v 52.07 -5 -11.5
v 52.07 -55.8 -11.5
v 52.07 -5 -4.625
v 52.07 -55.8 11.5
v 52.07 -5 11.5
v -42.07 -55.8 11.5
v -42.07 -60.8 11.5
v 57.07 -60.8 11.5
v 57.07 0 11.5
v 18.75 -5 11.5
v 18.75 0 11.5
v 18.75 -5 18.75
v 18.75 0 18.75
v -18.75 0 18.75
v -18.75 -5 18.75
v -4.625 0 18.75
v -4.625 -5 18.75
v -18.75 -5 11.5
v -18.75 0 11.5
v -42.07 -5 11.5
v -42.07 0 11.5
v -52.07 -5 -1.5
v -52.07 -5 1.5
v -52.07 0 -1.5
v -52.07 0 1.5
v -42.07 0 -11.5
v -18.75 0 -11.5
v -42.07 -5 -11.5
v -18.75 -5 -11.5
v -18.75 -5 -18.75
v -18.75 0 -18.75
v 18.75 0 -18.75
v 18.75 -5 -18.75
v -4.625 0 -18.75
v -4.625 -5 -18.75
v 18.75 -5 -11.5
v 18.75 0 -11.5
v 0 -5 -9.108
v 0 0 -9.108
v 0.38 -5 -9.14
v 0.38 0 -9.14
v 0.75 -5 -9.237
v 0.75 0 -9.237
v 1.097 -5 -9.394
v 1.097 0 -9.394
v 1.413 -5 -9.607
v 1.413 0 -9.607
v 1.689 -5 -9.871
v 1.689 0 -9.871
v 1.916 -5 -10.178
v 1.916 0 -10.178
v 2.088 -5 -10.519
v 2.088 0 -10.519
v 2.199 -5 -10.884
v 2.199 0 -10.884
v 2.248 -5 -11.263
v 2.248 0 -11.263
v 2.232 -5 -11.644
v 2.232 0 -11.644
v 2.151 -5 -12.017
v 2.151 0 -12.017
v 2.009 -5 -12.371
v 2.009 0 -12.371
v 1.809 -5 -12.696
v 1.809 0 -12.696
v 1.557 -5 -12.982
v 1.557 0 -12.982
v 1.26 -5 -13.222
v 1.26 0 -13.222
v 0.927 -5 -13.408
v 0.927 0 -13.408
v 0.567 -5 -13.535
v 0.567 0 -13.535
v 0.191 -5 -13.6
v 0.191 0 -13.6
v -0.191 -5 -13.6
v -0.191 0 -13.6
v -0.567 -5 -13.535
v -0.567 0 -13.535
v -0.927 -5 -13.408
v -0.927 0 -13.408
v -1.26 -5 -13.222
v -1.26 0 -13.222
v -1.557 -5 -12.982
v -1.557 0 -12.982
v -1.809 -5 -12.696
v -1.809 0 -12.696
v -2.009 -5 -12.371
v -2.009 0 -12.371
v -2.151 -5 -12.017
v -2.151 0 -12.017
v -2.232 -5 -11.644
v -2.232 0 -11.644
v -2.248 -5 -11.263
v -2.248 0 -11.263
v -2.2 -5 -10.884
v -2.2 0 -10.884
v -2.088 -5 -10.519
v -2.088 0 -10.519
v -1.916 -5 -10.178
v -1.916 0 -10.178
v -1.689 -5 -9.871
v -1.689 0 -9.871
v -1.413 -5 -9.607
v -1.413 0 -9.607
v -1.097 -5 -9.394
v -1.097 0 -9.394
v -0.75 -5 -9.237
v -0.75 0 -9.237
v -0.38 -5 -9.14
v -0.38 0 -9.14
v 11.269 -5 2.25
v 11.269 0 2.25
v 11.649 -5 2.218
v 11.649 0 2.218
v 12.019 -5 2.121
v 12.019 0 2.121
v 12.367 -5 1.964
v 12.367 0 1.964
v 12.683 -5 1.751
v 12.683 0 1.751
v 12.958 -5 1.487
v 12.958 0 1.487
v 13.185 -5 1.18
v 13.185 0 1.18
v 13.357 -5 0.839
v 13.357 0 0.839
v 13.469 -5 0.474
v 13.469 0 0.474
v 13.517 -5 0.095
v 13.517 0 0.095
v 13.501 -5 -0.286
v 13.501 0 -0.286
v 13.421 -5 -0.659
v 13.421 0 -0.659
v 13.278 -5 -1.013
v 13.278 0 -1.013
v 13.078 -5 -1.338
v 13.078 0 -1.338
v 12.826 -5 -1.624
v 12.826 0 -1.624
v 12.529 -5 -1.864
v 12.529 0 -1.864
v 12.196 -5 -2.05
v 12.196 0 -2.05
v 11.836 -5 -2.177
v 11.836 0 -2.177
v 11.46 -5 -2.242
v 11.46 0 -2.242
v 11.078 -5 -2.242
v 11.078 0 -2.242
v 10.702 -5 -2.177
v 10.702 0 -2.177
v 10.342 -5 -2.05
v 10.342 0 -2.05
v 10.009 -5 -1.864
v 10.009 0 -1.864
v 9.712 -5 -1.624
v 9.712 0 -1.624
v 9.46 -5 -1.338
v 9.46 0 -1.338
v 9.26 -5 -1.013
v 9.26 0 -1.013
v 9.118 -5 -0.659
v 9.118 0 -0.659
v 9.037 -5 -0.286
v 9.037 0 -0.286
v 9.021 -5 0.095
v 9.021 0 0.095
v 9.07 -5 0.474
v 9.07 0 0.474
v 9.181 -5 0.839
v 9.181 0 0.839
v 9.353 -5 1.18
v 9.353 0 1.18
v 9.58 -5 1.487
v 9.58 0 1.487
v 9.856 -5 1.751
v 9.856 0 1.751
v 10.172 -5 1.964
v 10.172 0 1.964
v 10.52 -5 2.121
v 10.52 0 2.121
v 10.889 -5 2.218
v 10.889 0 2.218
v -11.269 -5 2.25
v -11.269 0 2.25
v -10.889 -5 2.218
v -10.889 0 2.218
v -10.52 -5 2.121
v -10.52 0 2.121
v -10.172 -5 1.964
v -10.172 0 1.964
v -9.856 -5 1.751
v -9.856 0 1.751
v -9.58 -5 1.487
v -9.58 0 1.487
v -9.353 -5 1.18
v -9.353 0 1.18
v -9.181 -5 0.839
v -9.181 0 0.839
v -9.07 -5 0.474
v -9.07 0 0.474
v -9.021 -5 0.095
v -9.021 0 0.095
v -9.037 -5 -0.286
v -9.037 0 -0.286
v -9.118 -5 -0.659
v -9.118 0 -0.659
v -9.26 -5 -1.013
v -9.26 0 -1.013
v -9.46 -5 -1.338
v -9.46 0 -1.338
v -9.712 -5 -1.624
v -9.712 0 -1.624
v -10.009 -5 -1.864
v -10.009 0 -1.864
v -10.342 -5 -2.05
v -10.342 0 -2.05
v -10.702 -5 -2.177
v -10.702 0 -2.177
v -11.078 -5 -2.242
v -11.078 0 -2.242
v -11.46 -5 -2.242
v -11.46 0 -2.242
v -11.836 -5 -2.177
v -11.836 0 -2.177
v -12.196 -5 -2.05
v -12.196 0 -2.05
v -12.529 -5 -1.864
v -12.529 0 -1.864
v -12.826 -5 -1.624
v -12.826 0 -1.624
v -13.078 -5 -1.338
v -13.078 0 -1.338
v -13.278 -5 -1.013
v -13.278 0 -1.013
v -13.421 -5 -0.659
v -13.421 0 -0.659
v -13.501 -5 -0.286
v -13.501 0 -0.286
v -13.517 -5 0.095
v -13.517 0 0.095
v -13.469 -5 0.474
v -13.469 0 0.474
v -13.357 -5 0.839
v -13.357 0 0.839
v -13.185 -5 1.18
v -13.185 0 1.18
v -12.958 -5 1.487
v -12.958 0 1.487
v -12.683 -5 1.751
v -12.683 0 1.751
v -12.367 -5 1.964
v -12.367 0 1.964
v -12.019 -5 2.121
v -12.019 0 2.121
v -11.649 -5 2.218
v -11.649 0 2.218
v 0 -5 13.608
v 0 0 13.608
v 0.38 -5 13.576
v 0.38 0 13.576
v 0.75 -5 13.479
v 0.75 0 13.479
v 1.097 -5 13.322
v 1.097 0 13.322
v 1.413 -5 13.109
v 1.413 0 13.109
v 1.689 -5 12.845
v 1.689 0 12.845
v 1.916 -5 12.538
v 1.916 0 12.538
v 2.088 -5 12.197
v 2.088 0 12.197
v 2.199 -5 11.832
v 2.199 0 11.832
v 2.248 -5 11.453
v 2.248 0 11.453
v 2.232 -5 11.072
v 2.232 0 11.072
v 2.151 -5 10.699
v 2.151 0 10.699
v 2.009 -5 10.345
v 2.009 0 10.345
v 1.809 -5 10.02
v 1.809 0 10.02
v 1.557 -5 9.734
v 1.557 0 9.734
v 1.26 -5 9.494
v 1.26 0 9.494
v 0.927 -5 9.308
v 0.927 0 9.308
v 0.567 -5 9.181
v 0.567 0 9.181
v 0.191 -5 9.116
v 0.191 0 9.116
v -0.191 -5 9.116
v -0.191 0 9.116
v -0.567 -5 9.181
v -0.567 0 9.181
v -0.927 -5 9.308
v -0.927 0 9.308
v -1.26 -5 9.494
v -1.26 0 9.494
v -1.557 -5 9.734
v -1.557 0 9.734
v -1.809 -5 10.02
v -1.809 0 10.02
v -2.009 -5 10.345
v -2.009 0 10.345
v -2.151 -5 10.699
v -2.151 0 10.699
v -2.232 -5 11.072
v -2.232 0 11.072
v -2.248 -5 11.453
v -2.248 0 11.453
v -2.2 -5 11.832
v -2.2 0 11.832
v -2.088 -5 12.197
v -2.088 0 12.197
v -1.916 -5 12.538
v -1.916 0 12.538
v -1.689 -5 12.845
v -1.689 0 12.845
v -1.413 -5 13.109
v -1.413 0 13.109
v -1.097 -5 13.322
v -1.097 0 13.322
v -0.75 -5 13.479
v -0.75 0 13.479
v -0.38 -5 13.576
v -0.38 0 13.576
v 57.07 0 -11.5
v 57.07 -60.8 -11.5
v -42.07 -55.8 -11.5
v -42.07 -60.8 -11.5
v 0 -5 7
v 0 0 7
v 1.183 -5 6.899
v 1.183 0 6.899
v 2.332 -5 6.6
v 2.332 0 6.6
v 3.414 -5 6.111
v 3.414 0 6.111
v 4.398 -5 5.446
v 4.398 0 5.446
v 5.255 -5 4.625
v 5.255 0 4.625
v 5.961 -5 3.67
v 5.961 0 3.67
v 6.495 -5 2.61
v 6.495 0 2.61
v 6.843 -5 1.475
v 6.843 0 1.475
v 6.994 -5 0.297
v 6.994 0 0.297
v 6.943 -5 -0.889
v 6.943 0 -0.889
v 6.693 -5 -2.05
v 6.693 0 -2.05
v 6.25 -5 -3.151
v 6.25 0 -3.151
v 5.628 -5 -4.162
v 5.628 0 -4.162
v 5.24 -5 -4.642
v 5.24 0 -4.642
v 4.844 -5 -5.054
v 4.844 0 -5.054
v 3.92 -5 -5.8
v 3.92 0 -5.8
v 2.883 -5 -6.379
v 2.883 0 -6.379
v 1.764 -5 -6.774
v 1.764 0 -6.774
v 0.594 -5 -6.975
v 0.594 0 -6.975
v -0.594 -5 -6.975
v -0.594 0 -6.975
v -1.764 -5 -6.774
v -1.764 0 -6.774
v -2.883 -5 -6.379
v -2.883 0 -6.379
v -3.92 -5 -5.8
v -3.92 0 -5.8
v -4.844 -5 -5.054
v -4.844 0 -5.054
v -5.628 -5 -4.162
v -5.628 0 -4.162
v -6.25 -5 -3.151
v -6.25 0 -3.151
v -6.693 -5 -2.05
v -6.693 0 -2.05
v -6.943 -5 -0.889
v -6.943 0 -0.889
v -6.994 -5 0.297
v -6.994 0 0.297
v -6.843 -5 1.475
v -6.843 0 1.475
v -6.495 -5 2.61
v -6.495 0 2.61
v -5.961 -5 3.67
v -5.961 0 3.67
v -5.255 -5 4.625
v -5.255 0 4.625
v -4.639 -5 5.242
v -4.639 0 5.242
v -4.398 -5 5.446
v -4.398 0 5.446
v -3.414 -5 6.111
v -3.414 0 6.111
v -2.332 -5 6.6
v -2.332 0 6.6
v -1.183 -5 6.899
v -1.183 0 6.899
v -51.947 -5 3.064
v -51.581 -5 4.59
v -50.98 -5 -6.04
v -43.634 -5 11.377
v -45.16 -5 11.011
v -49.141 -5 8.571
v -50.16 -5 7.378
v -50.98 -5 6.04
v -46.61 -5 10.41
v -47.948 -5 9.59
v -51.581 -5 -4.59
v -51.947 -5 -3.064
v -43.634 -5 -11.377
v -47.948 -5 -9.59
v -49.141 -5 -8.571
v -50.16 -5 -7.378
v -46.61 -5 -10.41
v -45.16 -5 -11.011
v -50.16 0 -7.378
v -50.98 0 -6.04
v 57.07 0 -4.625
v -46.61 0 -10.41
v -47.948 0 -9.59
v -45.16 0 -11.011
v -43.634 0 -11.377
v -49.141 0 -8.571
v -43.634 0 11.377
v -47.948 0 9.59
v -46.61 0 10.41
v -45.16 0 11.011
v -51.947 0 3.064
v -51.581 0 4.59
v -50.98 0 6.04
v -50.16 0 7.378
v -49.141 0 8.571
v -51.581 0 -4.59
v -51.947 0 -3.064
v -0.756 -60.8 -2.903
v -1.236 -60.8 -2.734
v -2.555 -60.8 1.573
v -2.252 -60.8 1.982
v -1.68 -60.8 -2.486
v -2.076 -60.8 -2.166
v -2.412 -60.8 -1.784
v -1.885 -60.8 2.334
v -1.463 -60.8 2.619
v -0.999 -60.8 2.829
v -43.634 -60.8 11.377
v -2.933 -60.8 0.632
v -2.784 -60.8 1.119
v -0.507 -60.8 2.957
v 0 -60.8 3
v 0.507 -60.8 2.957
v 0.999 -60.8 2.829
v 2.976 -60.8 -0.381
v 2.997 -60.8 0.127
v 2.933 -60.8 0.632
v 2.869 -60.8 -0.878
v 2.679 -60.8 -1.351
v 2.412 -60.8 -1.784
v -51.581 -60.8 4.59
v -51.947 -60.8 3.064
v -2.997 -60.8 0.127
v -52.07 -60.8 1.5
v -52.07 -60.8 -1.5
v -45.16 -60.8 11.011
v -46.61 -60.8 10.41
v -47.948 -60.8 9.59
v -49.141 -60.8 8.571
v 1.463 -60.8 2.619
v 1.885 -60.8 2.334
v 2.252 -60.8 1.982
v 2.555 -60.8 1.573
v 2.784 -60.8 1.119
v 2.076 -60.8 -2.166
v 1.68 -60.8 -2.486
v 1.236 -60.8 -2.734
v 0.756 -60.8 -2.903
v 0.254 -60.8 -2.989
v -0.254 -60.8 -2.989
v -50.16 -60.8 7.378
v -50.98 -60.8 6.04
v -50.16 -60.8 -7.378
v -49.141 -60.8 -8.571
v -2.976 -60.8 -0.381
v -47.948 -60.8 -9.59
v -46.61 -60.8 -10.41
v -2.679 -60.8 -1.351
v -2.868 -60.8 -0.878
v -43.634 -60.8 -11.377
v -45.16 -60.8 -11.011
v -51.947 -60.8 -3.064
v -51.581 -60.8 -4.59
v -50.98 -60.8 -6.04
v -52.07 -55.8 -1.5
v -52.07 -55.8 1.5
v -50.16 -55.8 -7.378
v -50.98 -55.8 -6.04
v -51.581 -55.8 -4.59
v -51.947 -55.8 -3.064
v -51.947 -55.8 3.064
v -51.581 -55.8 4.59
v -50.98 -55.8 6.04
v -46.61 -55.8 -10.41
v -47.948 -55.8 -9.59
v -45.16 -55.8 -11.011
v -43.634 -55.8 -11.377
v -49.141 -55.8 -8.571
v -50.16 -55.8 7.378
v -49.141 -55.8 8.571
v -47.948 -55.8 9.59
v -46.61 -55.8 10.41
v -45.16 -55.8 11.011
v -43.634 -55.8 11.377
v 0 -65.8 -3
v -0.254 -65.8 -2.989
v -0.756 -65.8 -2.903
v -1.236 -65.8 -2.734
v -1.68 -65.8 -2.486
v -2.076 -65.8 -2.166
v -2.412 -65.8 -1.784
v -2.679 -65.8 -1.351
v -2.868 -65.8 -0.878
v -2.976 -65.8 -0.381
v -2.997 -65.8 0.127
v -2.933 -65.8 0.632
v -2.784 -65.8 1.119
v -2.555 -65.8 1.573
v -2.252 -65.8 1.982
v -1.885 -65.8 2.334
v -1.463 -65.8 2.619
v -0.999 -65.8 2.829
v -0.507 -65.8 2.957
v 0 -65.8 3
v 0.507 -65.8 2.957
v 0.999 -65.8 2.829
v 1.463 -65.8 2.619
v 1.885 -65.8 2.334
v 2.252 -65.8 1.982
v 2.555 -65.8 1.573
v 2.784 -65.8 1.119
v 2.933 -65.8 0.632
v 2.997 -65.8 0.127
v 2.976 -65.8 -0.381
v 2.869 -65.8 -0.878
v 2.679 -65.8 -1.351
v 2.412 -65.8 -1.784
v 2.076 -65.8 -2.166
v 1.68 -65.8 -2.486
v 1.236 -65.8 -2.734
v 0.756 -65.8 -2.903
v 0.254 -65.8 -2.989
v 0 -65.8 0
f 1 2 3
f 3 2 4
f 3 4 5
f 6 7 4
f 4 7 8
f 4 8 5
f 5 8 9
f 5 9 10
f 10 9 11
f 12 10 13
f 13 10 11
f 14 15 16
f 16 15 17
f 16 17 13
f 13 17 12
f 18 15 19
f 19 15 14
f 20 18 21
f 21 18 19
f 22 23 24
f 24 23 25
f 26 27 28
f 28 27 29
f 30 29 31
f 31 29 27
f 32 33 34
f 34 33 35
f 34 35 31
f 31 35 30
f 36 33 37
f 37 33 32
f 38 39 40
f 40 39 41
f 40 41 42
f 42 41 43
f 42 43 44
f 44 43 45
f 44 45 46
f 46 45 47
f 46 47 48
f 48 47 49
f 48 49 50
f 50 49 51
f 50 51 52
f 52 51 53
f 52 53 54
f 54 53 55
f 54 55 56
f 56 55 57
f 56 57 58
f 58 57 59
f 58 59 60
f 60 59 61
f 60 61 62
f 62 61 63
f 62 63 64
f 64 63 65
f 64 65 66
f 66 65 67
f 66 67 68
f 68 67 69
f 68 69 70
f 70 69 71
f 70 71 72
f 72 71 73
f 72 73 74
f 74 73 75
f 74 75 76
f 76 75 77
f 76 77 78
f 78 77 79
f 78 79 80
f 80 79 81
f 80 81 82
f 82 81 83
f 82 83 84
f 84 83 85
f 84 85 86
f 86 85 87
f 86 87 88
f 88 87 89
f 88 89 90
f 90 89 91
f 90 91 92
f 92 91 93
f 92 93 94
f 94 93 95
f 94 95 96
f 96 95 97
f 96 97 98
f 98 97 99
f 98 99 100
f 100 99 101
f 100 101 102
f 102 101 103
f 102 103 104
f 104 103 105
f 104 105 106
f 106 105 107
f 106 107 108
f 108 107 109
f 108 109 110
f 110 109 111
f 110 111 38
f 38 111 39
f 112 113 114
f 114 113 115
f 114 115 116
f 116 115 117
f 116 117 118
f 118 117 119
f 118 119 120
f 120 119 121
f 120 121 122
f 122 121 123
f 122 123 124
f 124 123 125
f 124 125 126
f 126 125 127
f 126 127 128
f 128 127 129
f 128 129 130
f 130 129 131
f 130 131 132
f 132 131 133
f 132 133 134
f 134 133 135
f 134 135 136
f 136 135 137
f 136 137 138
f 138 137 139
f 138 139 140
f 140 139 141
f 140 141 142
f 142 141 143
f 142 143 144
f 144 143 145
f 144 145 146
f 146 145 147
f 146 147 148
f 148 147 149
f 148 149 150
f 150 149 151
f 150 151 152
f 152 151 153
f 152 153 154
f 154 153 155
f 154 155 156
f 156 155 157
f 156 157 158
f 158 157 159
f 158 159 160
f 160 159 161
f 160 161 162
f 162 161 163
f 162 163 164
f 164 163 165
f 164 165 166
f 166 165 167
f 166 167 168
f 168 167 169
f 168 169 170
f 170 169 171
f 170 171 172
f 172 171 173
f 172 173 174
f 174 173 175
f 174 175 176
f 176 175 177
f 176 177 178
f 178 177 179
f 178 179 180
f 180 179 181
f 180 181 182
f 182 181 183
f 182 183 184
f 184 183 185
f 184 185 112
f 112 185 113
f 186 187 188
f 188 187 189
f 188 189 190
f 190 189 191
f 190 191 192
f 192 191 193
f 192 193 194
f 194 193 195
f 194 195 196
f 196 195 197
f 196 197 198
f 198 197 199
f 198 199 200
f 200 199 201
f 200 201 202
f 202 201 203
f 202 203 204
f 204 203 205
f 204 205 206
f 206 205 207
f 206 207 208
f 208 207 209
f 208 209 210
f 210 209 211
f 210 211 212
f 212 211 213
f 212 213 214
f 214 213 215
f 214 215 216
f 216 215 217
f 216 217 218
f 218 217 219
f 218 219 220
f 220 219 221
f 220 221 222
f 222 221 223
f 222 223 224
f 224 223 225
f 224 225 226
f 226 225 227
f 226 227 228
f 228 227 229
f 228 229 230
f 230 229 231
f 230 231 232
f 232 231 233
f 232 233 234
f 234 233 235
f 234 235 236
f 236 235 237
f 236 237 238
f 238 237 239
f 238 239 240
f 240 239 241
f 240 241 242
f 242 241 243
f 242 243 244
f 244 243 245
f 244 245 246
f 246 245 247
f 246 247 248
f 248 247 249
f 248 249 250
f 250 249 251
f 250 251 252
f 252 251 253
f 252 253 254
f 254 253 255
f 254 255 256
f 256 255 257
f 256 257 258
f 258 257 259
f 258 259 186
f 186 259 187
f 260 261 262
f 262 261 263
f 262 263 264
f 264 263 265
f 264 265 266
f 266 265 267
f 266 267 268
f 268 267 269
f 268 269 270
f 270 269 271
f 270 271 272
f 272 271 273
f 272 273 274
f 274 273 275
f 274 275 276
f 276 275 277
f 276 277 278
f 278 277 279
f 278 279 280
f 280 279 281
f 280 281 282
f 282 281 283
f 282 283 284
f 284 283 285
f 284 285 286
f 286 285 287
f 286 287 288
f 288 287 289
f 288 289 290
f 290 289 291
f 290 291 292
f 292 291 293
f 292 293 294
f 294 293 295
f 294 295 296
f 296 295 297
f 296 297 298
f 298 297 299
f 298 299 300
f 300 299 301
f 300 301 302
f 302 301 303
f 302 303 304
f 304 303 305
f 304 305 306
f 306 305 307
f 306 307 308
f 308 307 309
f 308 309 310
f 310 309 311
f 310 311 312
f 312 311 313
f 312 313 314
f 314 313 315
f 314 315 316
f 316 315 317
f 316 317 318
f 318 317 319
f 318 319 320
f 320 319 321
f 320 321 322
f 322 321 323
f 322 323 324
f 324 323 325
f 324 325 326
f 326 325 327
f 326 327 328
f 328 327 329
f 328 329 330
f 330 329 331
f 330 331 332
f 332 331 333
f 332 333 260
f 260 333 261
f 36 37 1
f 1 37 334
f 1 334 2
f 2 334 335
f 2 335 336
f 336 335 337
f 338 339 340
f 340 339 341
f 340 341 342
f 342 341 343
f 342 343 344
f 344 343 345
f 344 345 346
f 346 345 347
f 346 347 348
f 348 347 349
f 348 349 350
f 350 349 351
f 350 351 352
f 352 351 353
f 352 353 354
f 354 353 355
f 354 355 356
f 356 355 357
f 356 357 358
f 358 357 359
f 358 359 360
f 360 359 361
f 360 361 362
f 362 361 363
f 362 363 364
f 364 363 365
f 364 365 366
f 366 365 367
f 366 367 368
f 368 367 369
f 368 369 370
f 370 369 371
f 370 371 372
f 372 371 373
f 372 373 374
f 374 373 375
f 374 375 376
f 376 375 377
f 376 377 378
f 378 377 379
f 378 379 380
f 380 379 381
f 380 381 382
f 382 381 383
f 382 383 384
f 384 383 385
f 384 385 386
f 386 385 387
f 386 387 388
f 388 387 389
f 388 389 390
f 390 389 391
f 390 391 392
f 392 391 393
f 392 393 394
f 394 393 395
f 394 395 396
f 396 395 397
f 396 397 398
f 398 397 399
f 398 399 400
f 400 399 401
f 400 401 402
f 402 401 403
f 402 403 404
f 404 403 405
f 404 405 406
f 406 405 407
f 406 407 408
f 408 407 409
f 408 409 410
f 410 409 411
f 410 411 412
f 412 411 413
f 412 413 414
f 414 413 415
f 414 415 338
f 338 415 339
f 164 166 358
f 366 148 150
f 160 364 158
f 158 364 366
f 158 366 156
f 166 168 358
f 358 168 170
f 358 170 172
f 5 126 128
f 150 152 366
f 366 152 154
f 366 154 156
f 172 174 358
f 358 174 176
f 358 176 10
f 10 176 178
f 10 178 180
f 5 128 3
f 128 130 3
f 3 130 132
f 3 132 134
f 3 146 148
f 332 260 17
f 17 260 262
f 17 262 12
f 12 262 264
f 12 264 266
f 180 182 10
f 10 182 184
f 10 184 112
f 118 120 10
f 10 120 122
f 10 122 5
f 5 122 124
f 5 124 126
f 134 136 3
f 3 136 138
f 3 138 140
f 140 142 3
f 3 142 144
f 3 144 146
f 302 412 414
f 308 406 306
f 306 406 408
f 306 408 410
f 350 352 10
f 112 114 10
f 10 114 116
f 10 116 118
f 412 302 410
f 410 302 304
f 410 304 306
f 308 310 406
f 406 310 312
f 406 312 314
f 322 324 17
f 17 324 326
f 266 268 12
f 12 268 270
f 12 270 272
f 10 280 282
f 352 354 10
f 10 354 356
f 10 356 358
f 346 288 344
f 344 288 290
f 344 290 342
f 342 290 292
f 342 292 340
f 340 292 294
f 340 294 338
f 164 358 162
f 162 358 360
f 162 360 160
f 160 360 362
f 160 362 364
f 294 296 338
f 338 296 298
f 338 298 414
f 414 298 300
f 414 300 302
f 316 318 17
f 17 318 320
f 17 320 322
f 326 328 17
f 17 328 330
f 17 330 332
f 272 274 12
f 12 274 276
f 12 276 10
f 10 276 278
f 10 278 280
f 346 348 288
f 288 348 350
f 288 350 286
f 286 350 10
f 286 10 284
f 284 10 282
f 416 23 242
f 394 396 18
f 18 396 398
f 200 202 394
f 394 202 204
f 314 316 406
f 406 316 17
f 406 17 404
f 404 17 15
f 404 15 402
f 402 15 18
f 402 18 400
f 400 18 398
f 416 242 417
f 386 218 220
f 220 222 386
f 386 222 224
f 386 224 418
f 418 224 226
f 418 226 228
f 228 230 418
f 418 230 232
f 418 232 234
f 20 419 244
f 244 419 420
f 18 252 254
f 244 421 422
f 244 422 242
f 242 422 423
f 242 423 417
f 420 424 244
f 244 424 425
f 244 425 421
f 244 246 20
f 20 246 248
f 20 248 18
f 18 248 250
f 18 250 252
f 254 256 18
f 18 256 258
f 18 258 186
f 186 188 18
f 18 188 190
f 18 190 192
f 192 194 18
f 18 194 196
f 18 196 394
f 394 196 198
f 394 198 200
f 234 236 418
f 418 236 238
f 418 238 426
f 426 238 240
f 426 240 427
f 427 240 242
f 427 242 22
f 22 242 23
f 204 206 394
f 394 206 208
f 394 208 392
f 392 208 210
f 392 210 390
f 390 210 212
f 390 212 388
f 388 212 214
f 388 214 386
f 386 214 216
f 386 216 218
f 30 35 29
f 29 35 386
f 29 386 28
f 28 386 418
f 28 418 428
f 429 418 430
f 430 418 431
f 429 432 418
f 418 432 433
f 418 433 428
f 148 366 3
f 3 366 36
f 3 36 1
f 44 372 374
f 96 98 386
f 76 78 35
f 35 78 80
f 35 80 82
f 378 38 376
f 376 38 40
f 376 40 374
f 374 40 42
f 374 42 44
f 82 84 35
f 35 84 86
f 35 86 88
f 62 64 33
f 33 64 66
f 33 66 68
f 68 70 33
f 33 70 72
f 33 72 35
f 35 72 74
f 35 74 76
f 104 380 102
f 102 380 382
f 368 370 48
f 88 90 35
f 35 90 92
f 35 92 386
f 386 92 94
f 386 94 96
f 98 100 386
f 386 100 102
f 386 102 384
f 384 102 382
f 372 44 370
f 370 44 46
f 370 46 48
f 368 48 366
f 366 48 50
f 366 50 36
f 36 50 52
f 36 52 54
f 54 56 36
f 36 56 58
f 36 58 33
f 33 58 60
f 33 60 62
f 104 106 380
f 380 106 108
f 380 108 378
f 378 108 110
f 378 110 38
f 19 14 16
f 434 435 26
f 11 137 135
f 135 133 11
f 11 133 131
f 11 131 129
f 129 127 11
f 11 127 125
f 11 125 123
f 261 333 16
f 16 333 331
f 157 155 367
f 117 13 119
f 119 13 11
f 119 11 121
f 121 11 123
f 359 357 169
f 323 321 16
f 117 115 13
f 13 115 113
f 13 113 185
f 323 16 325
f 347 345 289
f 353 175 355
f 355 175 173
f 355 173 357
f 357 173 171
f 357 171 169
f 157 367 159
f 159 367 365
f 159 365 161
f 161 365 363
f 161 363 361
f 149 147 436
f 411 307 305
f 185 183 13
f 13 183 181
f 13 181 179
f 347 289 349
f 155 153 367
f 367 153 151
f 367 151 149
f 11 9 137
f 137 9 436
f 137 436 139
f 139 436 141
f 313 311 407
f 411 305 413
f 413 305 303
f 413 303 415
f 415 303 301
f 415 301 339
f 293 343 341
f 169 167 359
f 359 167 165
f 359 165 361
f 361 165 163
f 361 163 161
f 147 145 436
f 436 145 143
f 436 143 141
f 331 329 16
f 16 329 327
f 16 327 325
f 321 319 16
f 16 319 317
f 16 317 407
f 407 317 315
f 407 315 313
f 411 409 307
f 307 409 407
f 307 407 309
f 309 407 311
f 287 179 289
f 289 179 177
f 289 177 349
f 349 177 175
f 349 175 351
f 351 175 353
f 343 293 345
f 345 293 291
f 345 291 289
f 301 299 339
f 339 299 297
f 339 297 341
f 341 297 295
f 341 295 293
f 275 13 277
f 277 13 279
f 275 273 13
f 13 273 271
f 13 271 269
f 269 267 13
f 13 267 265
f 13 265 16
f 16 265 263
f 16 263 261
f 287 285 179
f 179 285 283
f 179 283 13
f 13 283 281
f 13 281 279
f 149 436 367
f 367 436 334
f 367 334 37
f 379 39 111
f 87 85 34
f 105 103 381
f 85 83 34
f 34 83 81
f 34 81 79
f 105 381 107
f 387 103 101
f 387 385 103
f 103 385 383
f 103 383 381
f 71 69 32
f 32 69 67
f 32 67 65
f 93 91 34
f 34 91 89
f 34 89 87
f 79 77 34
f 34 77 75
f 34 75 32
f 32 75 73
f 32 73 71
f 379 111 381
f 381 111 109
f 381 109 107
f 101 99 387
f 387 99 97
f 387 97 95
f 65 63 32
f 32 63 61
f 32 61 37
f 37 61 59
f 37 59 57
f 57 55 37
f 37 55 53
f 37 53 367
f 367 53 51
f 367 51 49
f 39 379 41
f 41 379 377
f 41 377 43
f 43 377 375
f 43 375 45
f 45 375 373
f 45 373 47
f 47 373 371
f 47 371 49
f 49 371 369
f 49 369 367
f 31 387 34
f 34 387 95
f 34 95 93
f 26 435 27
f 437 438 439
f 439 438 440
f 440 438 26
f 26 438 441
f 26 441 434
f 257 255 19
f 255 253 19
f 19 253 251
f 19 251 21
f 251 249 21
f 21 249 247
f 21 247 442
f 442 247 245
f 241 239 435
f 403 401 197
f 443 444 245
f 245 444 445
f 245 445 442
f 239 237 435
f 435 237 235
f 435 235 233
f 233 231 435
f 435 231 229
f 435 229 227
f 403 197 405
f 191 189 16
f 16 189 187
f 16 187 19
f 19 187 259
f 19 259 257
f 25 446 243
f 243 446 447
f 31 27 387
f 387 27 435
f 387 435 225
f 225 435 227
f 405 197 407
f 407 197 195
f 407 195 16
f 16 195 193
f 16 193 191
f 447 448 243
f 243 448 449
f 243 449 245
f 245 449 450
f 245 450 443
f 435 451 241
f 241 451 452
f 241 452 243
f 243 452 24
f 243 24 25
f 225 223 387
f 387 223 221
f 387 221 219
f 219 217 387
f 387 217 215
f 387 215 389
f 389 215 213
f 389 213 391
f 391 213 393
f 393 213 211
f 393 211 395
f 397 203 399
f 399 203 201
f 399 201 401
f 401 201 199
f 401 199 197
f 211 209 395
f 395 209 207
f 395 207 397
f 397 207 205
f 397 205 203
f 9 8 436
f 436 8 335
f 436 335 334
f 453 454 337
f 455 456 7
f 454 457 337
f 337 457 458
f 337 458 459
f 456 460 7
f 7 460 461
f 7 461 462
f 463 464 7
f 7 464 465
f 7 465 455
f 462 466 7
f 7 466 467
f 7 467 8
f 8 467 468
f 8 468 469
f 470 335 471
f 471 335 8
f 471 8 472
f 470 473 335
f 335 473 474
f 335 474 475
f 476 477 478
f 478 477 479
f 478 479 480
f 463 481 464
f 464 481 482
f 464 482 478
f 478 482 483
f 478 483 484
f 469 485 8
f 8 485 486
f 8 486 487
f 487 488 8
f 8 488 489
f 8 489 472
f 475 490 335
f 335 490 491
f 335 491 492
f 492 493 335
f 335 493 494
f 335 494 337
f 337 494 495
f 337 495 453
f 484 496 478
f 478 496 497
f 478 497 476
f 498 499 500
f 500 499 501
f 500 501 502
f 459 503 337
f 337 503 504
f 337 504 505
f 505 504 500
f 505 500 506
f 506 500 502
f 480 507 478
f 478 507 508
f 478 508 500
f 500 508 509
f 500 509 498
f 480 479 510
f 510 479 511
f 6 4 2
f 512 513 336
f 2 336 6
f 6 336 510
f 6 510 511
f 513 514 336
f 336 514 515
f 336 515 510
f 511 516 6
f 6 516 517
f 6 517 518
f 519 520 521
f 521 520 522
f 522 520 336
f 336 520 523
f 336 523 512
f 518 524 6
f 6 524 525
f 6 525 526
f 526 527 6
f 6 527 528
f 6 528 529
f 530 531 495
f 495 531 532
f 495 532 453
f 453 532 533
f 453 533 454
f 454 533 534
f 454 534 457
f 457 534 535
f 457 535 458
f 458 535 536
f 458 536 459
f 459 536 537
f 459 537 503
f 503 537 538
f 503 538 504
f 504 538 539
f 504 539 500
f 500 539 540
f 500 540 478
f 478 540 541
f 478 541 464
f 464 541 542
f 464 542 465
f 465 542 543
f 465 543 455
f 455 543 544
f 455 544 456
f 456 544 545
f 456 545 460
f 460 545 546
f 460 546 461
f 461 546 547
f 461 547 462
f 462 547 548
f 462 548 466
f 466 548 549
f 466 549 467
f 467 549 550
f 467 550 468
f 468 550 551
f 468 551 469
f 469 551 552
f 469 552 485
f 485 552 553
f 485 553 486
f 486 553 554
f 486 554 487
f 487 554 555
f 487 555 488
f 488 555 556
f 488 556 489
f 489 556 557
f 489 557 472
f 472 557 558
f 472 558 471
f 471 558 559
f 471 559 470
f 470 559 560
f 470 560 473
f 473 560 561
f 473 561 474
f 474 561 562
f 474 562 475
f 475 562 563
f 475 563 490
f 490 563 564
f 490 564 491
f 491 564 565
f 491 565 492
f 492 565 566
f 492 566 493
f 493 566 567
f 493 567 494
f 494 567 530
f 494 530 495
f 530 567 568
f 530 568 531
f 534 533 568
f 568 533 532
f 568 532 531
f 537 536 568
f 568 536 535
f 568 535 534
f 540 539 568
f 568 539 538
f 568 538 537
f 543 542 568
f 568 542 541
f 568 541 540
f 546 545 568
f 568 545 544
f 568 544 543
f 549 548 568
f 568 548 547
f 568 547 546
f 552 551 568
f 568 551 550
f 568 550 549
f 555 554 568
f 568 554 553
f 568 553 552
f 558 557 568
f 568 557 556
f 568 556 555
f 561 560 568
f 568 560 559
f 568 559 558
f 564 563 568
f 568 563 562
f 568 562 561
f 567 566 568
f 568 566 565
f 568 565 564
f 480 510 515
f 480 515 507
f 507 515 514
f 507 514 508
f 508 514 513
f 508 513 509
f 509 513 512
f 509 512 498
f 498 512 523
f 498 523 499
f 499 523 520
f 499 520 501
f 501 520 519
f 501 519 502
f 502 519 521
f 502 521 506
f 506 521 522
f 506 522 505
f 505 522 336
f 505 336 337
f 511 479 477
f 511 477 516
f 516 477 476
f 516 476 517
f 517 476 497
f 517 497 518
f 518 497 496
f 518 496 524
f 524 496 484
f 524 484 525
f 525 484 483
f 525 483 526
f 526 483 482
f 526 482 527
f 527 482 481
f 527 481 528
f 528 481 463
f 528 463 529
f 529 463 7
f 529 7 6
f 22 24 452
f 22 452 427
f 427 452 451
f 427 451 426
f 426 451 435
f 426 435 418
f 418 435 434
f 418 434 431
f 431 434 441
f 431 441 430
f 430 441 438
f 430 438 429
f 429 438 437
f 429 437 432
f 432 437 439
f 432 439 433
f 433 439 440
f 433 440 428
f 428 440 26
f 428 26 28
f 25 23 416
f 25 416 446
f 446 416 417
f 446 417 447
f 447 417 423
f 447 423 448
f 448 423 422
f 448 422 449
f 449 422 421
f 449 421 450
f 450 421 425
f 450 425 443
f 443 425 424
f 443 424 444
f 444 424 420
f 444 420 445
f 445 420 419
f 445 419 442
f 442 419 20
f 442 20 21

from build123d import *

# Parameters (mm, degrees)
SKETCH1_R           = 2.25
SKETCH1_R_2         = 7
BOSS_EXTRUDE2_DEPTH = 5
SKETCH1_3_W         = 5
SKETCH1_3_H         = 23
BOSS_EXTRUDE3_DEPTH = 60.8
SKETCH3_W           = 109.14
SKETCH3_H           = 23
BOSS_EXTRUDE4_DEPTH = 5
SKETCH4_R           = 3
BOSS_EXTRUDE5_DEPTH = 5
FILLET3_R           = 10


with BuildPart() as part:
    # Sketch1 → Boss-Extrude2 (new body)
    with BuildSketch(Plane(origin=(0, 0, 0), x_dir=(1, 0, 0), z_dir=(0, 1, 0))):
        Polygon((52.07, 11.5), (18.75, 11.5), (18.75, 18.75), (-18.75, 18.75), (-18.75, 11.5), (-52.07, 11.5), (-52.07, -11.5), (-18.75, -11.5), (-18.75, -18.75), (18.75, -18.75), (18.75, -11.5), (52.07, -11.5), align=None)
        with Locations((0, 11.358)):
            Circle(SKETCH1_R, mode=Mode.SUBTRACT)
        with Locations((11.26924292, 0)):
            Circle(SKETCH1_R, mode=Mode.SUBTRACT)
        with Locations((-11.26924292, 0)):
            Circle(SKETCH1_R, mode=Mode.SUBTRACT)
        with Locations((0, -11.358)):
            Circle(SKETCH1_R, mode=Mode.SUBTRACT)
        Circle(SKETCH1_R_2, mode=Mode.SUBTRACT)
    extrude(amount=-BOSS_EXTRUDE2_DEPTH)

    # Sketch1<3> → Boss-Extrude3 (add)
    with BuildSketch(Plane(origin=(0, 0, 0), x_dir=(1, 0, 0), z_dir=(0, 1, 0))):
        with Locations((54.57, 0)):
            Rectangle(SKETCH1_3_W, SKETCH1_3_H)
    extrude(amount=-BOSS_EXTRUDE3_DEPTH)

    # Sketch3 → Boss-Extrude4 (add)
    with BuildSketch(Plane.XZ.offset(60.8)):
        with Locations((2.5, 0)):
            Rectangle(SKETCH3_W, SKETCH3_H)
    extrude(amount=-BOSS_EXTRUDE4_DEPTH)

    # Sketch4 → Boss-Extrude5 (add)
    with BuildSketch(Plane.XZ.offset(60.8)):
        Circle(SKETCH4_R)
    extrude(amount=BOSS_EXTRUDE5_DEPTH)

    # Fillet3
    fillet3_edges = [part.edges().sort_by_distance(p)[0] for p in [
        (-52.07, -58.3, -11.5),
        (-52.07, -58.3, 11.5),
        (-52.07, -2.5, -11.5),
        (-52.07, -2.5, 11.5),
    ]]
    fillet(fillet3_edges, radius=FILLET3_R)


solid = part.part
